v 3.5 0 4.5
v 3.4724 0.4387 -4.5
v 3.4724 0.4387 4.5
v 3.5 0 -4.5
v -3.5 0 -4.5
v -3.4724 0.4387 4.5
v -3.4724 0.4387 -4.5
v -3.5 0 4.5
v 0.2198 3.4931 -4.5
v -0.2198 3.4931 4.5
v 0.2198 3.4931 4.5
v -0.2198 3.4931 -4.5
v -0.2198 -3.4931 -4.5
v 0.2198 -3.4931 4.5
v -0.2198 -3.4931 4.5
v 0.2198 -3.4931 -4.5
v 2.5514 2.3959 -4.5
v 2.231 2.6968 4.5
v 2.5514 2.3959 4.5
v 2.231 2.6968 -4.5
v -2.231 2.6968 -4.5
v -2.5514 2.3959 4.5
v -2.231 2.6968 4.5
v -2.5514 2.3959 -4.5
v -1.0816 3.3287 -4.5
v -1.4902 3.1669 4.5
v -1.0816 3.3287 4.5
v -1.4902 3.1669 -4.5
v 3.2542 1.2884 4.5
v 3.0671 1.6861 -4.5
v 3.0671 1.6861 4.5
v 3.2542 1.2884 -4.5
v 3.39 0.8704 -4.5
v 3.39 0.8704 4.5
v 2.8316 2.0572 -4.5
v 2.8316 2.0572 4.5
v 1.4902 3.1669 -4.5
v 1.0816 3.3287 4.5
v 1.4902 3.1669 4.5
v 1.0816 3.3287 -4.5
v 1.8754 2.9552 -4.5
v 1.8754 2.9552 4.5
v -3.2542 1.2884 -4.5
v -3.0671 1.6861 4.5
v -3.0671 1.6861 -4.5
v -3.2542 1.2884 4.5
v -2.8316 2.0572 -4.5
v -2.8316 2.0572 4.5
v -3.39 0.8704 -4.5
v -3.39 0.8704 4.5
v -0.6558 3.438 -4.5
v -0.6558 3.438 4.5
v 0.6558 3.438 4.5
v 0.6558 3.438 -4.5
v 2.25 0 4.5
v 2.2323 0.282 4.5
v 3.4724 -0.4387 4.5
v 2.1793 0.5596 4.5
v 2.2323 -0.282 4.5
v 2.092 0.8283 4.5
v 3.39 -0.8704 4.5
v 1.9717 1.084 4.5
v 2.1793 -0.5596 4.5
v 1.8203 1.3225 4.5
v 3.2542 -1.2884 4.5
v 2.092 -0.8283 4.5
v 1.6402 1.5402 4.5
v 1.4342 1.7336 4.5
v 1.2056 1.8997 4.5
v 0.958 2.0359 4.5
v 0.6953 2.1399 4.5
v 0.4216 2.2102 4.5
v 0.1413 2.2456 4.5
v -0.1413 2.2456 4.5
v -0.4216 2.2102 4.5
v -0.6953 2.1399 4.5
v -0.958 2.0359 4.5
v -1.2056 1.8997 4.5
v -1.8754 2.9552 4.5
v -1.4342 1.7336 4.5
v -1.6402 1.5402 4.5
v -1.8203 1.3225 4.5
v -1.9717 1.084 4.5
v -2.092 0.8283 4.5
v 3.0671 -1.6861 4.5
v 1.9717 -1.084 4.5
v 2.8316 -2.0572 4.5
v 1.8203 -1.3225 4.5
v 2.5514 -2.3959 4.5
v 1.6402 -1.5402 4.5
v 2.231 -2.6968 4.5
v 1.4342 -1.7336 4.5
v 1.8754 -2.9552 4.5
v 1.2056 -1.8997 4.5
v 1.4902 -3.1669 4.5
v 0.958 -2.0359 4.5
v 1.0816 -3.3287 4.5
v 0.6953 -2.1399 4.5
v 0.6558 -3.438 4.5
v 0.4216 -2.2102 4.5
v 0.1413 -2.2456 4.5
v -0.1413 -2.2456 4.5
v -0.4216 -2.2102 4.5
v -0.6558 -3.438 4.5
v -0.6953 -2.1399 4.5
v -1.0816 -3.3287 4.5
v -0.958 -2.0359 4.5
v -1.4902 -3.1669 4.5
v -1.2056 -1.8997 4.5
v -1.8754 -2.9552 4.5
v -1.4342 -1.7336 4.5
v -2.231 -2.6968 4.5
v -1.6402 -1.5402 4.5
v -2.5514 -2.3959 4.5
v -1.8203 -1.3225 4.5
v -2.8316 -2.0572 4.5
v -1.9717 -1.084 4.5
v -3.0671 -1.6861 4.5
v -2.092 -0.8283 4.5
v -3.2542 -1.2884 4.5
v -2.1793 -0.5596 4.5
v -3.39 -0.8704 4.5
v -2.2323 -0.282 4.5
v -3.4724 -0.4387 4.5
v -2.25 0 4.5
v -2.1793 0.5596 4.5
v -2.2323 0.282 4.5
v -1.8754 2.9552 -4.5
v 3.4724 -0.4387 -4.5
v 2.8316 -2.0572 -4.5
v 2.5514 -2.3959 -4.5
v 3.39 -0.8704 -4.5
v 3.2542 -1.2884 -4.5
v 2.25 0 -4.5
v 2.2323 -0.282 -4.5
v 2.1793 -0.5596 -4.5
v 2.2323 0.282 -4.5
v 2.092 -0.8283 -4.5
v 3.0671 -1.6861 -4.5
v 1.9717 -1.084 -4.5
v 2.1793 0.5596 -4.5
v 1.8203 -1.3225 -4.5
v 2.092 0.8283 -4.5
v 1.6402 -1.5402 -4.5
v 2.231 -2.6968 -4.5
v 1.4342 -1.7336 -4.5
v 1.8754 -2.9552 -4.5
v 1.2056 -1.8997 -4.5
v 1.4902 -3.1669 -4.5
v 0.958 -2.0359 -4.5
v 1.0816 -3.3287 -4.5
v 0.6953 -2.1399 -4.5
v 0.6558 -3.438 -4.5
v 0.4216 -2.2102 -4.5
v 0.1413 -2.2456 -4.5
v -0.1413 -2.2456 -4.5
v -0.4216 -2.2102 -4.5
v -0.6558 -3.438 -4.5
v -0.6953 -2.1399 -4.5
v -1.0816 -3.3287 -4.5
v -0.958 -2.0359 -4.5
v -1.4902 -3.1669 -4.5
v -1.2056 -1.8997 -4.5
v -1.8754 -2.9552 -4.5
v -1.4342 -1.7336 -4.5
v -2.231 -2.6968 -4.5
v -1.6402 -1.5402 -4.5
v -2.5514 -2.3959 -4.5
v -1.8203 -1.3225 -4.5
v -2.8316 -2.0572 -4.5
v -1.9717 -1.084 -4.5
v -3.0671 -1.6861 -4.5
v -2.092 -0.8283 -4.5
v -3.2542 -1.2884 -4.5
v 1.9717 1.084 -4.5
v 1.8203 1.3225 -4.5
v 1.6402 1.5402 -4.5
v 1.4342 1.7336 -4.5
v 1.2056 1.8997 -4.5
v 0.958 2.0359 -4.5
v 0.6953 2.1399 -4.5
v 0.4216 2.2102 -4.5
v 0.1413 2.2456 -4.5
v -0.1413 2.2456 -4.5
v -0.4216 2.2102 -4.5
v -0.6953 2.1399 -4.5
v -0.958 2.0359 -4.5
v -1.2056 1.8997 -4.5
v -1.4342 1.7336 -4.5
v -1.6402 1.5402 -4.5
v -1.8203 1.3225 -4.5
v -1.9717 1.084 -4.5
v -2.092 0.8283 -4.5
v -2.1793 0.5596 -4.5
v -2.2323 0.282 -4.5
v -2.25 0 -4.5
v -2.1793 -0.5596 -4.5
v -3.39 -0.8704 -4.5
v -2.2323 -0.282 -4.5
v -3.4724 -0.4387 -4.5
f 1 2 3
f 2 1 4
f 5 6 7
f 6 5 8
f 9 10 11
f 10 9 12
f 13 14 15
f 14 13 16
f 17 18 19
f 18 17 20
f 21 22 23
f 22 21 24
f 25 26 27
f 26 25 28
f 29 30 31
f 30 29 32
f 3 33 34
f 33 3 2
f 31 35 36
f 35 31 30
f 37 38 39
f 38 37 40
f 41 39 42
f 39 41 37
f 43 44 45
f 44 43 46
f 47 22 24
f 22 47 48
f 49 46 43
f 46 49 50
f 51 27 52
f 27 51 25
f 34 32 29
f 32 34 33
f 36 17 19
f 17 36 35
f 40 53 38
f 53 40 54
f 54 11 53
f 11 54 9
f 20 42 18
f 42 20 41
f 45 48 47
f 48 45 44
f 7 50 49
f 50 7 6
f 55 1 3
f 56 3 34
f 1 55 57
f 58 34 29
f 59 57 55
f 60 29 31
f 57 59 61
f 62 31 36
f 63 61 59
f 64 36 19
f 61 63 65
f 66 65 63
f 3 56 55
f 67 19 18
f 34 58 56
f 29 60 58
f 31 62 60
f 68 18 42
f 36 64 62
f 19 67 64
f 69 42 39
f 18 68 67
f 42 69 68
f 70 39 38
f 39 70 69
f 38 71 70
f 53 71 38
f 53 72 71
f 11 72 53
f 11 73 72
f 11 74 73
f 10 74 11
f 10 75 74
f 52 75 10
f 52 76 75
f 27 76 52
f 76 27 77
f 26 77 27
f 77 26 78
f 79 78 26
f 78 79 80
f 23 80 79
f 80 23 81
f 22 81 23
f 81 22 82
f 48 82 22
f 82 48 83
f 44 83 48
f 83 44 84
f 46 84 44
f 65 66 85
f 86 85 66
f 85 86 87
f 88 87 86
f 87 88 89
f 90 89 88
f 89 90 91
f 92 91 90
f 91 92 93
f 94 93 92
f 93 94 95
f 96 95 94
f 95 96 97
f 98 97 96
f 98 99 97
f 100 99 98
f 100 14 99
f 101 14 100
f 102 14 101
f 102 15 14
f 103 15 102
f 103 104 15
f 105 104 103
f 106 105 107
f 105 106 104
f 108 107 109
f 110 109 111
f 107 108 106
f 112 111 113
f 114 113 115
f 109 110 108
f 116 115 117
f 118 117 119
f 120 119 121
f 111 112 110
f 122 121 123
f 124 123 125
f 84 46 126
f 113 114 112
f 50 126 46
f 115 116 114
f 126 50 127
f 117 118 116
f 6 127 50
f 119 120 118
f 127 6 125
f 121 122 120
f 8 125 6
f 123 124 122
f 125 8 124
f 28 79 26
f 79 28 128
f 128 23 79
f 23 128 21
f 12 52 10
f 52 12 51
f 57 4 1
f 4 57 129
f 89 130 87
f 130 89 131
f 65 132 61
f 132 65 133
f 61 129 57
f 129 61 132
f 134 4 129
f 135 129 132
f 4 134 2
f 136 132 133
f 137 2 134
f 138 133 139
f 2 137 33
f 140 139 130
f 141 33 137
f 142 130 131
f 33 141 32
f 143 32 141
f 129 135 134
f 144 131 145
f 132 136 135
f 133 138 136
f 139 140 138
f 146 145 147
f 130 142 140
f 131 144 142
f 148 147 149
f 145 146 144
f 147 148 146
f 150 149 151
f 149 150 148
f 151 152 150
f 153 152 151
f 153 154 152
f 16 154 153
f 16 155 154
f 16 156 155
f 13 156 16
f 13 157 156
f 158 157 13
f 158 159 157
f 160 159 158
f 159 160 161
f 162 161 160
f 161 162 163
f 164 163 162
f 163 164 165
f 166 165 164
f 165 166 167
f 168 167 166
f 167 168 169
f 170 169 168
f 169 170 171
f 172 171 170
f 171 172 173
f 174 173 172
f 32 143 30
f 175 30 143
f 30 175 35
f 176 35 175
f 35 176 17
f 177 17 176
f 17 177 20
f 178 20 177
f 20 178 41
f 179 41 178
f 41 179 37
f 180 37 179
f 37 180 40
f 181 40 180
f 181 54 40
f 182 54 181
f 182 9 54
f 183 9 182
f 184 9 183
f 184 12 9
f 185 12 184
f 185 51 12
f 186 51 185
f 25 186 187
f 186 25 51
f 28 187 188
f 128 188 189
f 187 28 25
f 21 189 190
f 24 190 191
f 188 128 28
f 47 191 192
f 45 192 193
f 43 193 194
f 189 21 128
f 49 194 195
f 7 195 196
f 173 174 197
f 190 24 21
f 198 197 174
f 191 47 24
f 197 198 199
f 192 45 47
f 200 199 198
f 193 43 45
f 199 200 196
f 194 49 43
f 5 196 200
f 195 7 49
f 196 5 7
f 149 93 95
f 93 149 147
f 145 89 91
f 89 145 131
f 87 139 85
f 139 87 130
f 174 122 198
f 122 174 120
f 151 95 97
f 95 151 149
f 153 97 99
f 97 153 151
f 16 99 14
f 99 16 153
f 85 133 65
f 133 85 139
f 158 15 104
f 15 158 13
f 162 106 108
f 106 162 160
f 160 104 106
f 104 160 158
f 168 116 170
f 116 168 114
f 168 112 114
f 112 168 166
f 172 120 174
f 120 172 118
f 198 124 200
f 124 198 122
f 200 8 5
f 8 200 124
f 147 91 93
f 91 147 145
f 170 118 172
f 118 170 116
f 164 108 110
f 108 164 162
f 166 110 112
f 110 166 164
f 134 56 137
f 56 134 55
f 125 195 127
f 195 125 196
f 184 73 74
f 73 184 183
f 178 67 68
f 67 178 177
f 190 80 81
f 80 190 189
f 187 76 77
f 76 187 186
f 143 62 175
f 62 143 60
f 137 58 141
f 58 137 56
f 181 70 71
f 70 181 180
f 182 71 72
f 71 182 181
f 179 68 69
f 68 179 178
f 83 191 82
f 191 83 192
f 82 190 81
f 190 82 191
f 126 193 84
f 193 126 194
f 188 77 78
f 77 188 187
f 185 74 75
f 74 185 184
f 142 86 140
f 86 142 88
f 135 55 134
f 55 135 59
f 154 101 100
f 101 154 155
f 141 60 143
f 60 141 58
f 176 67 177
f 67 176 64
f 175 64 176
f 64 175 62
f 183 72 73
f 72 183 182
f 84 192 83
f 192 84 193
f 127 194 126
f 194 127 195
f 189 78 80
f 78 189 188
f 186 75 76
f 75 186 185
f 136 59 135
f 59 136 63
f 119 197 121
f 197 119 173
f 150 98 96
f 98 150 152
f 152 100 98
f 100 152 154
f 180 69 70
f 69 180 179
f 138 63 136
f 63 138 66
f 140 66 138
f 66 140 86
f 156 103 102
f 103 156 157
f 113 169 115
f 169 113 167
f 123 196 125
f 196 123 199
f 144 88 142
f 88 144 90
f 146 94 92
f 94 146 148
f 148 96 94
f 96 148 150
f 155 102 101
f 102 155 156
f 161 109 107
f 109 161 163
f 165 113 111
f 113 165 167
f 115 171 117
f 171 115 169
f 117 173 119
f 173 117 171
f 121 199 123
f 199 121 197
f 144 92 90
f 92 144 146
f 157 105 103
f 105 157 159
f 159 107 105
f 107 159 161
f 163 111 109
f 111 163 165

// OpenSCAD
$fn = 50;


difference() {
	union() {
		translate(v = [0, 0, -4.5000000000]) {
			cylinder(h = 9, r = 3.5000000000);
		}
	}
	union() {
		translate(v = [0, 0, -100.0000000000]) {
			cylinder(h = 200, r = 2.2500000000);
		}
	}
}
